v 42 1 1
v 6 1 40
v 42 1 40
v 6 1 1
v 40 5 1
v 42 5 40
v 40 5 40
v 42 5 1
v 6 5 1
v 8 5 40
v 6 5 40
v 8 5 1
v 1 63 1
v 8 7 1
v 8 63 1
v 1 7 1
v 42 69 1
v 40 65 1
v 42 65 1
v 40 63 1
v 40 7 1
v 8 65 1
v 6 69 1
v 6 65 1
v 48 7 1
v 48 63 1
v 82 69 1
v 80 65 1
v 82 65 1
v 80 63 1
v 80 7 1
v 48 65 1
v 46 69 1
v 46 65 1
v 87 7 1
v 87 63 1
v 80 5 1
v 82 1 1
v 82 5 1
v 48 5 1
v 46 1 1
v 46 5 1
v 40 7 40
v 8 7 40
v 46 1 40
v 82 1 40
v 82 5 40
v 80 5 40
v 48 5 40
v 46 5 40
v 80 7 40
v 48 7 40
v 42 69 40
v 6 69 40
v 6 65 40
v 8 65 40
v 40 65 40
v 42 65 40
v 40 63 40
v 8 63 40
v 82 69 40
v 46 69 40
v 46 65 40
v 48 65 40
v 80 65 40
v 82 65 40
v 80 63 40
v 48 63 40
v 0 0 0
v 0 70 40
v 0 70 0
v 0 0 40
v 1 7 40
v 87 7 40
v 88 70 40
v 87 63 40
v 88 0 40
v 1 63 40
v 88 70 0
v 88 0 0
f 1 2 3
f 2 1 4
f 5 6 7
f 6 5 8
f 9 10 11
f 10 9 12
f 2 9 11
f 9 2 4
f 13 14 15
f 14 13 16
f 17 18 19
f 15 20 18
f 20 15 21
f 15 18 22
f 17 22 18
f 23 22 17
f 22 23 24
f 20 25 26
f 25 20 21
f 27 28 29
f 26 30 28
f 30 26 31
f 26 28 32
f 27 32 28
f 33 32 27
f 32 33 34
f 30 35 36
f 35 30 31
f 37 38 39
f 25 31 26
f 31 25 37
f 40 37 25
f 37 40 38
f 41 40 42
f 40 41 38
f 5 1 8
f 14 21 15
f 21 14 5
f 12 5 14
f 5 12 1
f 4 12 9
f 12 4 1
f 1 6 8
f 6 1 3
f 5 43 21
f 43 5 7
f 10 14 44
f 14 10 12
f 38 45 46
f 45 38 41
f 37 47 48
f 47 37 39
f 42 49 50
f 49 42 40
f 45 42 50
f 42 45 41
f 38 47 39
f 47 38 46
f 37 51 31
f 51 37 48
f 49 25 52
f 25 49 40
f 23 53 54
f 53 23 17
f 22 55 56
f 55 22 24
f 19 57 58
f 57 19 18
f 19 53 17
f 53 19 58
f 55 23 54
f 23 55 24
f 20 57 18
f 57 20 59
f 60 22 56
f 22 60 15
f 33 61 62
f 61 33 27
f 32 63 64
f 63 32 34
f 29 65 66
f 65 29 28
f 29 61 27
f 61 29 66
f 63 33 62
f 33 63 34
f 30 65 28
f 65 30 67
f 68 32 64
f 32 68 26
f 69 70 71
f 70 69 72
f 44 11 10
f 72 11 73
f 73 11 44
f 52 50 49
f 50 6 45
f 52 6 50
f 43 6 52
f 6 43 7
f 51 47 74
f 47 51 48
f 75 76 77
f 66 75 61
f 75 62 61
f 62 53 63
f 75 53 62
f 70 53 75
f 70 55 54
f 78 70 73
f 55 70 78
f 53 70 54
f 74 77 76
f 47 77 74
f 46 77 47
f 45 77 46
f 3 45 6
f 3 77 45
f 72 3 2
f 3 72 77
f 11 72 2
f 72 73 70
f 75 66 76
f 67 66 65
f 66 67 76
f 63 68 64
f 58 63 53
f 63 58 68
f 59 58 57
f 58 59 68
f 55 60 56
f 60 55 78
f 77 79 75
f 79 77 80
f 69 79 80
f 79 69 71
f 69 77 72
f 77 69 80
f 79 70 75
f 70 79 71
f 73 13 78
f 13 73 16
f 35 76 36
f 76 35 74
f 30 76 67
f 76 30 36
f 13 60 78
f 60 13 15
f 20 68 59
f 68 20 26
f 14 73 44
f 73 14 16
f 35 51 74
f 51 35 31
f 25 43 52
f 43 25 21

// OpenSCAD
// 208 - 67
BOX_X = 88;
BOX_Y = 70;
BOX_Z = 40;

THICK = 1;
MARGIN = 6;

MODEL_W = 4;
MODEL_L = 36;
MODEL_M = 2;

S_MODEL_W = 4;
S_MODEL_L = 26;
S_MODEL_M = 2;

GAP = 40;

difference() {
    cube(size = [
        BOX_X,
        BOX_Y, 
        BOX_Z]);

    translate([
        THICK, 
        MARGIN + THICK, 
        THICK]) {
            
        cube(size = [
            BOX_X - (THICK * 2),
            BOX_Y - (MARGIN * 2) - (THICK * 2),
            BOX_Z]);
    }


    modelSlot(THICK, -2 - GAP, 90);
    modelSlot(THICK, -2 - GAP * 2, 90);

    modelSlot(THICK - BOX_Y, 6, 270);
    modelSlot(THICK - BOX_Y, 6 + GAP, 270);
    
    //modelSlot(90, 0, 0);
    //modelSlot(180, 0, 0);
    //modelSlot(270, 0, 0);
}

//big_modelSlot(THICK - BOX_Y, (BOX_Y / 2) + (BIG_MODEL_L / 2), 270);

module modelSlot(x, y, rot) {
    rotate([0, 0, rot]) {
        translate([x, y, THICK]) {
            cube(size = [
                MODEL_W,
                MODEL_L,
                BOX_Z]);
        }        
        
        translate([x + MODEL_M, y + MODEL_M, THICK]) {
            cube(size = [
                MODEL_W + 2,
                MODEL_L - (MODEL_M * 2),
                BOX_Z]);
        }
    }
}

module smallModelSlot(x, y, rot) {
    rotate([0, 0, rot]) {
        translate([x, y, THICK]) {
            cube(size = [
                S_MODEL_W,
                S_MODEL_L,
                BOX_Z]);
        }        
        
        translate([x + S_MODEL_M, y + S_MODEL_M, THICK]) {
            cube(size = [
                S_MODEL_W + 2,
                S_MODEL_L - (S_MODEL_M * 2),
                BOX_Z]);
        }
    }
}
